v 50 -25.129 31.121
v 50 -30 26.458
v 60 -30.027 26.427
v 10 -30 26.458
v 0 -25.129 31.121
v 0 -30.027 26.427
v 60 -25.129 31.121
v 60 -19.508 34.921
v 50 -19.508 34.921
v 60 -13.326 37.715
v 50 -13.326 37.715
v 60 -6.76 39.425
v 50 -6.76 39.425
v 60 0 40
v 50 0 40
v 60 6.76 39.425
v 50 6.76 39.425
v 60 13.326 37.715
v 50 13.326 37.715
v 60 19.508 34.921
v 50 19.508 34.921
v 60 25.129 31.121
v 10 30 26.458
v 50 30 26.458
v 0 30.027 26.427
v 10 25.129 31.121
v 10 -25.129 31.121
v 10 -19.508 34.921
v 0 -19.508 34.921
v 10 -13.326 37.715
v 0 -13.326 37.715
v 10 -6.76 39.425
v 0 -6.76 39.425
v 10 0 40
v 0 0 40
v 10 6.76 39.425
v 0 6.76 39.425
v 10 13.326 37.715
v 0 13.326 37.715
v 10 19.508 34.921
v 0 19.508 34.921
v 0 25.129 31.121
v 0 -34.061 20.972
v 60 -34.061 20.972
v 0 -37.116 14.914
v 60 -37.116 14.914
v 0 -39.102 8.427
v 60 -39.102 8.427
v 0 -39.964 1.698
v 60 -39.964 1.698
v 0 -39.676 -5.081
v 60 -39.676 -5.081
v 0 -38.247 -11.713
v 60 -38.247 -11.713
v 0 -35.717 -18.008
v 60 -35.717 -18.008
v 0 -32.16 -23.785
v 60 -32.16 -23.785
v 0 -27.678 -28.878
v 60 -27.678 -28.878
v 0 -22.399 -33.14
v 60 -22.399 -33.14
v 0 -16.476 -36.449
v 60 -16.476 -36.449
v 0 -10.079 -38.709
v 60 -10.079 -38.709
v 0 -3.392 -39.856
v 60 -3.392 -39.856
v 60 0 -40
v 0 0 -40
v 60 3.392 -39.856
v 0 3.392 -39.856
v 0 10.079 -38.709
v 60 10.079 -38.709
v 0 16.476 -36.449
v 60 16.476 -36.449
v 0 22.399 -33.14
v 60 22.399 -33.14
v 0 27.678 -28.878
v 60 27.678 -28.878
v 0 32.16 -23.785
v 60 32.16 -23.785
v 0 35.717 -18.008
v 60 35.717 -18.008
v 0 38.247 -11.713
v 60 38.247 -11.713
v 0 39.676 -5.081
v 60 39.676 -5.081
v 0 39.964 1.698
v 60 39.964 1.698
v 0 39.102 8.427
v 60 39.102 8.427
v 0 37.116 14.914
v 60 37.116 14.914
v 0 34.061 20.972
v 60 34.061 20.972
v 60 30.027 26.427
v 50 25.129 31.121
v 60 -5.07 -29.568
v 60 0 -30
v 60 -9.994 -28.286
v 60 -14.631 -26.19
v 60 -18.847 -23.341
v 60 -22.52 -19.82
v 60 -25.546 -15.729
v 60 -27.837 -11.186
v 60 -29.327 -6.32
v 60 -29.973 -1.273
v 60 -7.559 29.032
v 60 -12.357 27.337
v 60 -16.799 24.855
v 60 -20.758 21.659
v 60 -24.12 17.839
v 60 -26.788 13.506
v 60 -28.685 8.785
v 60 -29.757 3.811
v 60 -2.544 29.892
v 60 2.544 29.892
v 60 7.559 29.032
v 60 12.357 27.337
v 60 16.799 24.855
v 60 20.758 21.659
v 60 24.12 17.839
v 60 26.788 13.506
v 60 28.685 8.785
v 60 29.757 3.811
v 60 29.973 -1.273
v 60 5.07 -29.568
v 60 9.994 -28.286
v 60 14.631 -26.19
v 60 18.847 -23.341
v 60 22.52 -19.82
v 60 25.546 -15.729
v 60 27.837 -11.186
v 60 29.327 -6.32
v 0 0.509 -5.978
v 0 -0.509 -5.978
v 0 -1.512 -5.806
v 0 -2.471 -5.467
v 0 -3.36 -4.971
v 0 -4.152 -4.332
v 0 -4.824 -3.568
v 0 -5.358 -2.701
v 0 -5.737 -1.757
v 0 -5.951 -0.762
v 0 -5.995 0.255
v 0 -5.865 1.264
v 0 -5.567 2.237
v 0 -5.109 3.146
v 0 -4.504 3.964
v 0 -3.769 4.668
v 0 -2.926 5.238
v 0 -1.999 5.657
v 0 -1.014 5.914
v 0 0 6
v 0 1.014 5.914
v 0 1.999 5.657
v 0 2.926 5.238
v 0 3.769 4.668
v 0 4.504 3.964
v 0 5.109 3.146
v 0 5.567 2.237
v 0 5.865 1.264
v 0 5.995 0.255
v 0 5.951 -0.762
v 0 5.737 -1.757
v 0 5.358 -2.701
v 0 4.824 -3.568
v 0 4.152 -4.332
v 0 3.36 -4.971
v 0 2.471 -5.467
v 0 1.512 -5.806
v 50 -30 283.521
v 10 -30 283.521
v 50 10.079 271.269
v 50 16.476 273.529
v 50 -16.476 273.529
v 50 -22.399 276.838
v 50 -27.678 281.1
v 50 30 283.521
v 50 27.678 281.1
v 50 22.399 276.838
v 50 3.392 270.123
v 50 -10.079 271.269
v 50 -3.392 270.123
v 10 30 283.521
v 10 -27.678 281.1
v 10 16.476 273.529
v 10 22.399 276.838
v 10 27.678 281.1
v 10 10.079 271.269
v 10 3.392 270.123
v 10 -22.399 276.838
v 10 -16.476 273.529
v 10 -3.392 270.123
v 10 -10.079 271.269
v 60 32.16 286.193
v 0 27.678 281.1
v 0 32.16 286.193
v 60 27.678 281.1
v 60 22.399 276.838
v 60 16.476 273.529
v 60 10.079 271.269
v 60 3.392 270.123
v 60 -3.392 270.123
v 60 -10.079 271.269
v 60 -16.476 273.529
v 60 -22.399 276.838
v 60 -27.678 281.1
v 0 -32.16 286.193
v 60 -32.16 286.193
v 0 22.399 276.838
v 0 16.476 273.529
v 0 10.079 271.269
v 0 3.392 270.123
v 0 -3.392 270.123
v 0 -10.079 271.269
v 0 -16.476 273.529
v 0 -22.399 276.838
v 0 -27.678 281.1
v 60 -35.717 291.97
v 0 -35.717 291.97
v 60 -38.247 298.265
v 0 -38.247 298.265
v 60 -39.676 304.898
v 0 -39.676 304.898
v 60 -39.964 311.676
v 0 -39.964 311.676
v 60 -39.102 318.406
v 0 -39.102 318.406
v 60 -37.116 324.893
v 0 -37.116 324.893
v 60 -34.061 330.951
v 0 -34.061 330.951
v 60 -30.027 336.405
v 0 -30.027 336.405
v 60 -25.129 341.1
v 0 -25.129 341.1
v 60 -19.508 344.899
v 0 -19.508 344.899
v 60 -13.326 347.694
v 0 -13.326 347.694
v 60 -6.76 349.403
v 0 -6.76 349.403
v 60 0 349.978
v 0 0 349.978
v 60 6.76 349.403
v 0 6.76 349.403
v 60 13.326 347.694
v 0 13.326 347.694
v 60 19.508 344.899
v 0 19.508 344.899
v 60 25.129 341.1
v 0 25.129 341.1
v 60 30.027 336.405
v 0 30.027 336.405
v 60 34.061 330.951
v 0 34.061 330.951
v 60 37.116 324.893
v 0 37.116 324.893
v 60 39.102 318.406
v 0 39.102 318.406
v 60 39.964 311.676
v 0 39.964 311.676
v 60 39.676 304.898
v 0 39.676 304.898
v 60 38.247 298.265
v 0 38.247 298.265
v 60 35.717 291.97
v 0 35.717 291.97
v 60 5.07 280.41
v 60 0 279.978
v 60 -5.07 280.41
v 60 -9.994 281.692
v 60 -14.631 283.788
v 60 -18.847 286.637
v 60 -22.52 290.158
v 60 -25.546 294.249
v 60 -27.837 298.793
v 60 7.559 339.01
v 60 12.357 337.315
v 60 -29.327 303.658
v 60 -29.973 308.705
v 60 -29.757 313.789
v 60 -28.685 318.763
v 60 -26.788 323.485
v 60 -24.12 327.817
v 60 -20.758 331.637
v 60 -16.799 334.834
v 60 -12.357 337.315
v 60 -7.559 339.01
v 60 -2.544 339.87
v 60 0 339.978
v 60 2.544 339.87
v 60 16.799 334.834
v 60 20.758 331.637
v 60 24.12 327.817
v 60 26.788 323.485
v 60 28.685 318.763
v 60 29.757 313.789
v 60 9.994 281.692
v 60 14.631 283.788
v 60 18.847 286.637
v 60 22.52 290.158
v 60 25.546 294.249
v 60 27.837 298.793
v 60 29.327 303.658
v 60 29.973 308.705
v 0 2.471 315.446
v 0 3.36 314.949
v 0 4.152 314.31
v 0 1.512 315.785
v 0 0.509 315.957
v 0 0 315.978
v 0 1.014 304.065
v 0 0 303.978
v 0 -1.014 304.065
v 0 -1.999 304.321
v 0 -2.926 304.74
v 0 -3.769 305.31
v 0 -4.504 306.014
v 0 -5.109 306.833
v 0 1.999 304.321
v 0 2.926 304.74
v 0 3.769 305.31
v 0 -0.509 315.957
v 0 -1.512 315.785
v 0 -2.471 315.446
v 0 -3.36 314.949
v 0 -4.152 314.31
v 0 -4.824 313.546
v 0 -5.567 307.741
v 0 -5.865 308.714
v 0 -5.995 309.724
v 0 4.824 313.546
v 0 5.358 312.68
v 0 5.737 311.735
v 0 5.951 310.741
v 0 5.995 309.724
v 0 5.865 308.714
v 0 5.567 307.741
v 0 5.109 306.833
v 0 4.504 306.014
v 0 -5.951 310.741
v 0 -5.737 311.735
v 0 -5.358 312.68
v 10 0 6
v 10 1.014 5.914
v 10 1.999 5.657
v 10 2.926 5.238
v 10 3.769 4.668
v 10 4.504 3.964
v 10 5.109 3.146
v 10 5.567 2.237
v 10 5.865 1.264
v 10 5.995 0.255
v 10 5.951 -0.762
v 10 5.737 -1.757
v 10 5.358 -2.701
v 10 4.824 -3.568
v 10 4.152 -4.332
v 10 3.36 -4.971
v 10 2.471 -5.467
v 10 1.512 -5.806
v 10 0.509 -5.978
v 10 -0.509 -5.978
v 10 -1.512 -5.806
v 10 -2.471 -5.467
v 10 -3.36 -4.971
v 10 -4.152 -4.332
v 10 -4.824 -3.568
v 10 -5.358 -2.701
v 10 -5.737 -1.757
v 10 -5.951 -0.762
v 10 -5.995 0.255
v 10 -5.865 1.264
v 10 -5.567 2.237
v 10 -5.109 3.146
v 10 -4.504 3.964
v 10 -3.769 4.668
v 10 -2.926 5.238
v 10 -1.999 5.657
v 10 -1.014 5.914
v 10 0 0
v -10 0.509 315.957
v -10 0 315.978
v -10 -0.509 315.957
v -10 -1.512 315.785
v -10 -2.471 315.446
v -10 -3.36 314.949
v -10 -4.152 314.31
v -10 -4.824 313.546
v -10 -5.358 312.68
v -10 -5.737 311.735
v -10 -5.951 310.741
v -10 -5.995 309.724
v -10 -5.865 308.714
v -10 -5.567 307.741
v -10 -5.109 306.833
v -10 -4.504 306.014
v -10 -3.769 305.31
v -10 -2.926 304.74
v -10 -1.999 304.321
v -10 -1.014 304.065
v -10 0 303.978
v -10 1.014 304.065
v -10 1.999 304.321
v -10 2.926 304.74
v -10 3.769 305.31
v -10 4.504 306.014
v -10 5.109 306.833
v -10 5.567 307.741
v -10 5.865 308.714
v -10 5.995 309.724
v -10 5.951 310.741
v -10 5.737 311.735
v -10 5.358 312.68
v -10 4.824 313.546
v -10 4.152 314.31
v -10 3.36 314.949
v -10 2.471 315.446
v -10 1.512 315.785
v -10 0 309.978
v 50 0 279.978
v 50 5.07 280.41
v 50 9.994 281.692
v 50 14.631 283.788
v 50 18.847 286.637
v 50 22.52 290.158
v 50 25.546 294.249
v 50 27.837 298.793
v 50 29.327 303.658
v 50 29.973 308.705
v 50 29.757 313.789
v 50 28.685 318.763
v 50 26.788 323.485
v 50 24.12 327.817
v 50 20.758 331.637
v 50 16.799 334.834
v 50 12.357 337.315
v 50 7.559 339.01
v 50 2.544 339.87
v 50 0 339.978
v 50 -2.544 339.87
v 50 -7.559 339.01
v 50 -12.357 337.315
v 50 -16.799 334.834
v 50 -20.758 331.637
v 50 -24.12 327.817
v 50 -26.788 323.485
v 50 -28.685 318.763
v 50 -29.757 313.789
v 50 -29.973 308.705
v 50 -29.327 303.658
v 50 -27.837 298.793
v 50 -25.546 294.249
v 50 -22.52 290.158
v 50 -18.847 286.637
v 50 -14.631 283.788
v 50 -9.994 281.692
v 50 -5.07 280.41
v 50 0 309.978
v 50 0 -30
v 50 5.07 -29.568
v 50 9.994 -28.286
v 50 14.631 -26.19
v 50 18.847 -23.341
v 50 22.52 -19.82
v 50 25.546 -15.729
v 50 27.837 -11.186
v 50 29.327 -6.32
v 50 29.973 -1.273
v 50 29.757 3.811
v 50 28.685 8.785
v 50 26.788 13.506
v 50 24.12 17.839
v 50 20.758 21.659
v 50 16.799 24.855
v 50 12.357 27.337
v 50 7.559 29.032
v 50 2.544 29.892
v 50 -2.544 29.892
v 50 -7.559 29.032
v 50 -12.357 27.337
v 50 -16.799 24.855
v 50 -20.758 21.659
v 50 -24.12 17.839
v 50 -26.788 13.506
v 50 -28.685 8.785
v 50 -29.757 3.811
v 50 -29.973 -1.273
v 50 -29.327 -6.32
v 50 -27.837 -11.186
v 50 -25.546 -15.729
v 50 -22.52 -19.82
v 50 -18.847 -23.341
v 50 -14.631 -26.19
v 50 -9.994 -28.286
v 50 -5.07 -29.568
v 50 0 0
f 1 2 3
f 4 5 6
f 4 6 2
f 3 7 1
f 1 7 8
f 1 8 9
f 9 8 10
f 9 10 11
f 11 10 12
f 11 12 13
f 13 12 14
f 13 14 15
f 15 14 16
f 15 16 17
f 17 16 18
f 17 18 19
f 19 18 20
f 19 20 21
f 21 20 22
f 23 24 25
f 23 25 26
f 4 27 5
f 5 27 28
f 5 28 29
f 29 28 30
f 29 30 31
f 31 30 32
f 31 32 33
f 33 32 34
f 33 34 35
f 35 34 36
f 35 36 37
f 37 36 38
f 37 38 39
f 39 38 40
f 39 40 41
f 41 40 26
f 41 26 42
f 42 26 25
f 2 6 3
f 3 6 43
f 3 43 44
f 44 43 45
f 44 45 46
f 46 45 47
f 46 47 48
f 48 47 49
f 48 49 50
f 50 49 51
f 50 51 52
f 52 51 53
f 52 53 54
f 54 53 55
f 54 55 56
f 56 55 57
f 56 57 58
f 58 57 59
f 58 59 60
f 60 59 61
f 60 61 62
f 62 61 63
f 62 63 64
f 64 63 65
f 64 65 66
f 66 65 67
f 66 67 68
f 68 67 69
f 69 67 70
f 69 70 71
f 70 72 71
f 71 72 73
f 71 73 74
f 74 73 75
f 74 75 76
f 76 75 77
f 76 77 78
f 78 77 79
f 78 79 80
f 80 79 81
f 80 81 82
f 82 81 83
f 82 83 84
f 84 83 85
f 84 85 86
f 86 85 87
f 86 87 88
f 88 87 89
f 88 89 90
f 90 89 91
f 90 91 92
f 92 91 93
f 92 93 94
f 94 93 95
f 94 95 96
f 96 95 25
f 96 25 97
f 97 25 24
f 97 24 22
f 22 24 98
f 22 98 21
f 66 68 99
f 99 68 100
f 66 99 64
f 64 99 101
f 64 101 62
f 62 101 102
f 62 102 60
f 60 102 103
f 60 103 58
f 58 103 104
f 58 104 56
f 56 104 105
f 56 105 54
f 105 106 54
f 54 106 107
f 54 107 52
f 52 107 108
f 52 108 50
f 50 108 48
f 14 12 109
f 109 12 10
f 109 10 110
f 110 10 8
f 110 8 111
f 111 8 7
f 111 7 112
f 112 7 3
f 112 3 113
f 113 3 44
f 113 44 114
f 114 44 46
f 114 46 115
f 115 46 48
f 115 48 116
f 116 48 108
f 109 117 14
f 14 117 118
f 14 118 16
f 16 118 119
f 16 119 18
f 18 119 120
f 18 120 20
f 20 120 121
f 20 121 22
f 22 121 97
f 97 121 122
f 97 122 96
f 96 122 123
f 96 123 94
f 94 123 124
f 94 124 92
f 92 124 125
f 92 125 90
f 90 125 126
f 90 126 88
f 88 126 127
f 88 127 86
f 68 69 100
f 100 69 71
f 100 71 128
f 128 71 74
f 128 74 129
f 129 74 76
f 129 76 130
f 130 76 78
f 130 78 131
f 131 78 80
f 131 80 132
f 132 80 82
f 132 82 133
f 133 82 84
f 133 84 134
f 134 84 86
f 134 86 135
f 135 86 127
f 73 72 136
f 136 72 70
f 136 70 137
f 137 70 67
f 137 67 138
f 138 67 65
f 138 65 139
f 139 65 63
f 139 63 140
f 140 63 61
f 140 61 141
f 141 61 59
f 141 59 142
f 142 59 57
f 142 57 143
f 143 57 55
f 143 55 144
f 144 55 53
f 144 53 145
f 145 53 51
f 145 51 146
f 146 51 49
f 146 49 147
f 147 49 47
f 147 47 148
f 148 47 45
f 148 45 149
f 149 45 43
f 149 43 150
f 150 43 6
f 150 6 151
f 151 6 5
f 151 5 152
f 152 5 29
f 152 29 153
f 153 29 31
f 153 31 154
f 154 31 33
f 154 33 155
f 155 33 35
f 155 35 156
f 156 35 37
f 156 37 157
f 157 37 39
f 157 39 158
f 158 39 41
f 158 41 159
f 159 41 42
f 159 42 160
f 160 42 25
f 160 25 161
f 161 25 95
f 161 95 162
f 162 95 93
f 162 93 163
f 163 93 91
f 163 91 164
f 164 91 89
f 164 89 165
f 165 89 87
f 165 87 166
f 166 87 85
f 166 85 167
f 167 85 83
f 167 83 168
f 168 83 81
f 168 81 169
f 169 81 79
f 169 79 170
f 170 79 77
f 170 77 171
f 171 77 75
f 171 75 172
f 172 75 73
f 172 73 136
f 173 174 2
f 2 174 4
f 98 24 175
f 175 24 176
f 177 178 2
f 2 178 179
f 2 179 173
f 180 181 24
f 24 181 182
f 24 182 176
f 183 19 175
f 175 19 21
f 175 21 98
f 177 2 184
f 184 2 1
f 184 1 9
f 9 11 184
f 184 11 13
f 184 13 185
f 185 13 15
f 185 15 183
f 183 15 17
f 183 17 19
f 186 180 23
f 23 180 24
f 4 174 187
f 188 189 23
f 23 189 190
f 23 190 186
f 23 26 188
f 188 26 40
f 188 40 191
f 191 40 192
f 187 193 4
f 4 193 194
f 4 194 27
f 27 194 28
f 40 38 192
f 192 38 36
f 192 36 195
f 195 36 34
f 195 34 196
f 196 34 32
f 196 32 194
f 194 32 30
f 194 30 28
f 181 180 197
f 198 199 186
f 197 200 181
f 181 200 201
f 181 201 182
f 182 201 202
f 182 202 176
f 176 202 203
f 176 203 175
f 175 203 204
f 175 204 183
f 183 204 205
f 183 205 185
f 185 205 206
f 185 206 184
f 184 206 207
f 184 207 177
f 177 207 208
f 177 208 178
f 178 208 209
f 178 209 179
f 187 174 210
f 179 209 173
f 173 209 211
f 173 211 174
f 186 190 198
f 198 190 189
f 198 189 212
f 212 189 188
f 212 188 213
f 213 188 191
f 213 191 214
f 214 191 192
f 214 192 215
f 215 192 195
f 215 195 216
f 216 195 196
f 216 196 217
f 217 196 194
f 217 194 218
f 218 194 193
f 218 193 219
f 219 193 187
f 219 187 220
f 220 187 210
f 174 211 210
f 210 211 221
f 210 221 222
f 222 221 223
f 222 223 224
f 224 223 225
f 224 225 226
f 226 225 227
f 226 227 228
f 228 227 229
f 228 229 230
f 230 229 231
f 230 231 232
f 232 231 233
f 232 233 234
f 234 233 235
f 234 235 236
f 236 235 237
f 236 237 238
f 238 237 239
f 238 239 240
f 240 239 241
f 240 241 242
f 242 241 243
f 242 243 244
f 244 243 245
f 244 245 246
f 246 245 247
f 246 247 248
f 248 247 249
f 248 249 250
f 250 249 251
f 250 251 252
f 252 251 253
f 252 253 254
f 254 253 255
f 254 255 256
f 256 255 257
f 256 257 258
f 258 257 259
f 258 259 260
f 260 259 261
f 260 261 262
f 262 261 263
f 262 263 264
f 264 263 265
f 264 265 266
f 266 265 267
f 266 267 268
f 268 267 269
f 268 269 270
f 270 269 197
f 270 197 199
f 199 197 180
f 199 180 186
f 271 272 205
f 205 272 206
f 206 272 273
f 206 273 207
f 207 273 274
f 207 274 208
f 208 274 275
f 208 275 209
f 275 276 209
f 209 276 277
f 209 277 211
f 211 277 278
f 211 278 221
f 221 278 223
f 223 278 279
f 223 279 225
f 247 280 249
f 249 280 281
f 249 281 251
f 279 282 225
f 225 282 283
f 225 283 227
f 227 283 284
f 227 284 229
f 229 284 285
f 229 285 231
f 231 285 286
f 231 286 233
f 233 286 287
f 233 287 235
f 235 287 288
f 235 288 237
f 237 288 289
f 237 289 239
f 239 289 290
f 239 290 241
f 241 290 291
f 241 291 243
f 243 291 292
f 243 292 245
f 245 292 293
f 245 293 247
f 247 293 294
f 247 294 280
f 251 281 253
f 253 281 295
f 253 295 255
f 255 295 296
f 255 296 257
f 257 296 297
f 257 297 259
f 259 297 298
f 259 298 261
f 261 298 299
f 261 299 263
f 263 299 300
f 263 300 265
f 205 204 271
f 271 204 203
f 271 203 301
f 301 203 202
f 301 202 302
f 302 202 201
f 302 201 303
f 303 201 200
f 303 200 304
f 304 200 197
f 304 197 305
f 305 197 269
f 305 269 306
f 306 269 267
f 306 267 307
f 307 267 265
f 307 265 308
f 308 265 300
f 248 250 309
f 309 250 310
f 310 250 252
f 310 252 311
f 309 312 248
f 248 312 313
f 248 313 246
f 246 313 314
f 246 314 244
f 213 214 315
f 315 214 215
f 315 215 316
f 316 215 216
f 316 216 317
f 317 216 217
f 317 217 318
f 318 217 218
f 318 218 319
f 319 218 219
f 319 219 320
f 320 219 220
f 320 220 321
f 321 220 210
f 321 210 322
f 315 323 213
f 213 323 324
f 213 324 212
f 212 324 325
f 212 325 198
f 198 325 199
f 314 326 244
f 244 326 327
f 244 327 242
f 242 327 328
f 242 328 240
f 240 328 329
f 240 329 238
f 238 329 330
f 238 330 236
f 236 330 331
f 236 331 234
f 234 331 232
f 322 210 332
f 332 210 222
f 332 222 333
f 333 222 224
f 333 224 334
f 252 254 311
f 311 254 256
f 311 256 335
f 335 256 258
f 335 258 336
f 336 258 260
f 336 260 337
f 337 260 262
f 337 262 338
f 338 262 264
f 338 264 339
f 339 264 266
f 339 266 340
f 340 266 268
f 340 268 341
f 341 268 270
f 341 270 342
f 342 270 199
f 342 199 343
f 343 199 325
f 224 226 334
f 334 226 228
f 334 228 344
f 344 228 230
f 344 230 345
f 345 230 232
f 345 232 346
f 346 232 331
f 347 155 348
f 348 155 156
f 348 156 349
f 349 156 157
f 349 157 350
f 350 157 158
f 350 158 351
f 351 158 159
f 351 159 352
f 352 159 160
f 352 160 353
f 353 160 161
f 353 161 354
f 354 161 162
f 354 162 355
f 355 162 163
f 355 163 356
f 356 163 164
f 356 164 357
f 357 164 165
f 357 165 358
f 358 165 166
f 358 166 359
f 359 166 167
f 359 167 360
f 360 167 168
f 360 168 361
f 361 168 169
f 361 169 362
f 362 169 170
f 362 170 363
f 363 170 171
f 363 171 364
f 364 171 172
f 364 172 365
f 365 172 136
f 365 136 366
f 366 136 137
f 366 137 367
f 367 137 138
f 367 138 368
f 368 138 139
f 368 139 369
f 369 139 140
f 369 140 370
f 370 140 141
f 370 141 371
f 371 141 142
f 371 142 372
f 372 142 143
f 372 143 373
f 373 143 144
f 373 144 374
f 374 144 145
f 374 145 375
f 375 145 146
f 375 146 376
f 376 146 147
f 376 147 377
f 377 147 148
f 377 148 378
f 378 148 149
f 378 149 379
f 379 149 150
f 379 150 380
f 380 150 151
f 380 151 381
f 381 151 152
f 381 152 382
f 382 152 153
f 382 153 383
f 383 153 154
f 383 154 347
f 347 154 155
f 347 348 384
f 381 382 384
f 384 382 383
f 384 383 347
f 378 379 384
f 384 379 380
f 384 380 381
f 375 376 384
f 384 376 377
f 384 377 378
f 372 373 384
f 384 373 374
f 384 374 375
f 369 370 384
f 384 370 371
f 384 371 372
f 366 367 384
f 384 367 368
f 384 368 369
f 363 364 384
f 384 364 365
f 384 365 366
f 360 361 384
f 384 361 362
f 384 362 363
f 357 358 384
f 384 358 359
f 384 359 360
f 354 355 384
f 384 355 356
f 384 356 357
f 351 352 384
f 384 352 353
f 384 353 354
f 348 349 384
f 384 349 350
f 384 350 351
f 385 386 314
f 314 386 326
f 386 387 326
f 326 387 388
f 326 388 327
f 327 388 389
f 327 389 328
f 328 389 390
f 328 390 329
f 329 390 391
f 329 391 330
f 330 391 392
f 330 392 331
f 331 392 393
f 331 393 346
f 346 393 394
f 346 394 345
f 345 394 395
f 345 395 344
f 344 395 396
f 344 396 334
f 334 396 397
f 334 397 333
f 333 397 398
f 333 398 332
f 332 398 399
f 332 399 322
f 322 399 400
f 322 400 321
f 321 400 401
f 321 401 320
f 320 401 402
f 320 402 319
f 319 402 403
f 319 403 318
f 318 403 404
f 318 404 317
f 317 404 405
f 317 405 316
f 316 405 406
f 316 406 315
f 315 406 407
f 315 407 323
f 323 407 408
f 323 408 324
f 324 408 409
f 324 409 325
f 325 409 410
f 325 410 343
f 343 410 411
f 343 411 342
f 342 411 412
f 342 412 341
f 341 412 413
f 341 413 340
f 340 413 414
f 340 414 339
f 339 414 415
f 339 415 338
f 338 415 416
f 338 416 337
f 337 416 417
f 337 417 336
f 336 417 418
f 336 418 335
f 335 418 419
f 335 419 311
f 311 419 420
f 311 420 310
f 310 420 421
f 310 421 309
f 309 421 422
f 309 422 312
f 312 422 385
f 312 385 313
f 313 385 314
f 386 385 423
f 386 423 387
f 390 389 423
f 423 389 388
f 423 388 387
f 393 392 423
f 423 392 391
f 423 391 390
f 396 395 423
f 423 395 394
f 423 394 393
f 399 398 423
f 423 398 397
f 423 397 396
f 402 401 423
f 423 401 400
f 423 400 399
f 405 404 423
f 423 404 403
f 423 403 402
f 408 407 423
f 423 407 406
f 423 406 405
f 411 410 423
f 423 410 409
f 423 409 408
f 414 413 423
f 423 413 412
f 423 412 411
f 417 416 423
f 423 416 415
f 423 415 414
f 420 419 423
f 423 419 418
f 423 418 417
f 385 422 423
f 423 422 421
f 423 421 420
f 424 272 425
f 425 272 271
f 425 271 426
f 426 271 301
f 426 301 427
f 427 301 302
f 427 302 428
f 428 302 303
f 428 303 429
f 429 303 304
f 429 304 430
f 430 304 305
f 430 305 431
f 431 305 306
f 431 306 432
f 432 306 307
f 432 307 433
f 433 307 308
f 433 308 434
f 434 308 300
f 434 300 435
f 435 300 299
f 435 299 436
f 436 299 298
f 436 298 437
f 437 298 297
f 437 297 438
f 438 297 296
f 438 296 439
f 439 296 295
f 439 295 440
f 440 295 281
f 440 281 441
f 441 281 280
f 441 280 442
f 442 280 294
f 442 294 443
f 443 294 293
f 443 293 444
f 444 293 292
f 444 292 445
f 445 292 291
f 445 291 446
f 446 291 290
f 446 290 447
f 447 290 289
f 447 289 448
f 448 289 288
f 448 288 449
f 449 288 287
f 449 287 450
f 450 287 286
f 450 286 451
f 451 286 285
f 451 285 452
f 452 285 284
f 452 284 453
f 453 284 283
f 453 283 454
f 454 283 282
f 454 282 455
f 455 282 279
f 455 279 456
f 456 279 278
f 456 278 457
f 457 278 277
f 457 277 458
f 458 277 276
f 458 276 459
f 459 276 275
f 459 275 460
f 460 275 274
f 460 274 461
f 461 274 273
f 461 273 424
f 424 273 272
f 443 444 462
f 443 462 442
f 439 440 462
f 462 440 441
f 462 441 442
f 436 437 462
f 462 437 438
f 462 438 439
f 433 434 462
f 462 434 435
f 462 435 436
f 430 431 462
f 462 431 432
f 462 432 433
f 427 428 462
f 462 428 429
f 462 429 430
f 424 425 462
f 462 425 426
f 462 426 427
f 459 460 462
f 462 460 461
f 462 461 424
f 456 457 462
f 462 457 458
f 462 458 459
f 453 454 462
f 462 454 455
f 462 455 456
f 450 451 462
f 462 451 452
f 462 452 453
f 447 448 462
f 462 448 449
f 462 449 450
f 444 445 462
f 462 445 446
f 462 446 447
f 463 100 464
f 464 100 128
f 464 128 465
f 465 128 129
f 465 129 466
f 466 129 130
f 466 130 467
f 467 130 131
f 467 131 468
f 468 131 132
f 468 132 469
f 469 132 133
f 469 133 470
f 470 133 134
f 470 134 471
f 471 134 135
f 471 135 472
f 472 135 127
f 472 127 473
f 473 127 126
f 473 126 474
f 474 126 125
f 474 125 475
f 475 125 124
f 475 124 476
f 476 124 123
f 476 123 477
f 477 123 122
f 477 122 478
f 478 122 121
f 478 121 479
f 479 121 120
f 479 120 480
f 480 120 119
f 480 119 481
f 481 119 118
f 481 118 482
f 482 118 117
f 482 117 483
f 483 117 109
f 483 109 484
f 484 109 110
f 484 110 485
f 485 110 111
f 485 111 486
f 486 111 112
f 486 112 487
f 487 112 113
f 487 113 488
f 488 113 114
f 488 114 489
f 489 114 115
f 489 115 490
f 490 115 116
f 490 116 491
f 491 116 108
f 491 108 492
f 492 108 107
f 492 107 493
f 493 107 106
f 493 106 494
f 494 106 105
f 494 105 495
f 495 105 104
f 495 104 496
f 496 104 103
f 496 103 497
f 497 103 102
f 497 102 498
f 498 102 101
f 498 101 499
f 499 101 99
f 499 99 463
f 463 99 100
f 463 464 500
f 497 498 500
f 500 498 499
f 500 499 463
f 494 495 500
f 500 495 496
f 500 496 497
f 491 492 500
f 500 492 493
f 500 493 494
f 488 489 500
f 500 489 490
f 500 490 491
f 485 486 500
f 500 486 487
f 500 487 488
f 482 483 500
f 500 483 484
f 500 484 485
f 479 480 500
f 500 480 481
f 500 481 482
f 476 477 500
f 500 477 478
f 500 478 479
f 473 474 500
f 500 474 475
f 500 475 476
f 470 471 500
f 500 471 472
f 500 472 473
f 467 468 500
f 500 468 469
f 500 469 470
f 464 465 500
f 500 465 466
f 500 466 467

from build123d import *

# Parameters (mm, degrees)
SKETCH1_R             = 40
BOSS_EXTRUDE1_DEPTH   = 60
BOSS_EXTRUDE1_2_DEPTH = 60
BOSS_EXTRUDE2_START   = -121.840385
SKETCH5_W             = 40
SKETCH5_H             = 60
BOSS_EXTRUDE2_DEPTH   = 257.063378
SKETCH7_R             = 6
CUT_EXTRUDE5_DEPTH    = 10
SKETCH8_R             = 6
BOSS_EXTRUDE3_DEPTH   = 10
SKETCH2_R             = 30
CUT_EXTRUDE6_DEPTH    = 10


with BuildPart() as part:
    # Sketch1 → Boss-Extrude1 (new body)
    with BuildSketch(Plane(origin=(0, 0, 0), x_dir=(0, 0, -1), z_dir=(1, 0, 0))):
        Circle(SKETCH1_R)
    extrude(amount=BOSS_EXTRUDE1_DEPTH)



with BuildPart() as body_2:
    # Sketch1 → Boss-Extrude1 2 (new body)
    with BuildSketch(Plane(origin=(0, 0, 0), x_dir=(0, 0, -1), z_dir=(1, 0, 0))):
        with Locations((-309.978404015, 0)):
            Circle(SKETCH1_R)
    extrude(amount=BOSS_EXTRUDE1_2_DEPTH)


with BuildPart() as part_1:
    add(part.part)

    add(body_2.part)  # Boss-Extrude2 merges body 2
    # Sketch5 → Boss-Extrude2 (add)
    with BuildSketch(Plane(origin=(0, 0, 161.680506403), x_dir=(-1, 0, 0), z_dir=(0, 0, -1)).offset(BOSS_EXTRUDE2_START)):
        with Locations((-30, 0)):
            Rectangle(SKETCH5_W, SKETCH5_H)
    extrude(amount=BOSS_EXTRUDE2_DEPTH)

    # Sketch7 → Cut-Extrude5 (cut)
    with BuildSketch(Plane.ZY):
        Circle(SKETCH7_R)
    extrude(amount=-CUT_EXTRUDE5_DEPTH, mode=Mode.SUBTRACT)

    # Sketch8 → Boss-Extrude3 (add)
    with BuildSketch(Plane.ZY):
        with Locations((309.978404015, 0)):
            Circle(SKETCH8_R)
    extrude(amount=BOSS_EXTRUDE3_DEPTH)

    # Sketch2 → Cut-Extrude6 (cut)
    with BuildSketch(Plane(origin=(60, 0, 0), x_dir=(0, 0, -1), z_dir=(1, 0, 0))):
        Circle(SKETCH2_R)
        with Locations((-309.978404015, 0)):
            Circle(SKETCH2_R)
    extrude(amount=-CUT_EXTRUDE6_DEPTH, mode=Mode.SUBTRACT)


solid = part_1.part
